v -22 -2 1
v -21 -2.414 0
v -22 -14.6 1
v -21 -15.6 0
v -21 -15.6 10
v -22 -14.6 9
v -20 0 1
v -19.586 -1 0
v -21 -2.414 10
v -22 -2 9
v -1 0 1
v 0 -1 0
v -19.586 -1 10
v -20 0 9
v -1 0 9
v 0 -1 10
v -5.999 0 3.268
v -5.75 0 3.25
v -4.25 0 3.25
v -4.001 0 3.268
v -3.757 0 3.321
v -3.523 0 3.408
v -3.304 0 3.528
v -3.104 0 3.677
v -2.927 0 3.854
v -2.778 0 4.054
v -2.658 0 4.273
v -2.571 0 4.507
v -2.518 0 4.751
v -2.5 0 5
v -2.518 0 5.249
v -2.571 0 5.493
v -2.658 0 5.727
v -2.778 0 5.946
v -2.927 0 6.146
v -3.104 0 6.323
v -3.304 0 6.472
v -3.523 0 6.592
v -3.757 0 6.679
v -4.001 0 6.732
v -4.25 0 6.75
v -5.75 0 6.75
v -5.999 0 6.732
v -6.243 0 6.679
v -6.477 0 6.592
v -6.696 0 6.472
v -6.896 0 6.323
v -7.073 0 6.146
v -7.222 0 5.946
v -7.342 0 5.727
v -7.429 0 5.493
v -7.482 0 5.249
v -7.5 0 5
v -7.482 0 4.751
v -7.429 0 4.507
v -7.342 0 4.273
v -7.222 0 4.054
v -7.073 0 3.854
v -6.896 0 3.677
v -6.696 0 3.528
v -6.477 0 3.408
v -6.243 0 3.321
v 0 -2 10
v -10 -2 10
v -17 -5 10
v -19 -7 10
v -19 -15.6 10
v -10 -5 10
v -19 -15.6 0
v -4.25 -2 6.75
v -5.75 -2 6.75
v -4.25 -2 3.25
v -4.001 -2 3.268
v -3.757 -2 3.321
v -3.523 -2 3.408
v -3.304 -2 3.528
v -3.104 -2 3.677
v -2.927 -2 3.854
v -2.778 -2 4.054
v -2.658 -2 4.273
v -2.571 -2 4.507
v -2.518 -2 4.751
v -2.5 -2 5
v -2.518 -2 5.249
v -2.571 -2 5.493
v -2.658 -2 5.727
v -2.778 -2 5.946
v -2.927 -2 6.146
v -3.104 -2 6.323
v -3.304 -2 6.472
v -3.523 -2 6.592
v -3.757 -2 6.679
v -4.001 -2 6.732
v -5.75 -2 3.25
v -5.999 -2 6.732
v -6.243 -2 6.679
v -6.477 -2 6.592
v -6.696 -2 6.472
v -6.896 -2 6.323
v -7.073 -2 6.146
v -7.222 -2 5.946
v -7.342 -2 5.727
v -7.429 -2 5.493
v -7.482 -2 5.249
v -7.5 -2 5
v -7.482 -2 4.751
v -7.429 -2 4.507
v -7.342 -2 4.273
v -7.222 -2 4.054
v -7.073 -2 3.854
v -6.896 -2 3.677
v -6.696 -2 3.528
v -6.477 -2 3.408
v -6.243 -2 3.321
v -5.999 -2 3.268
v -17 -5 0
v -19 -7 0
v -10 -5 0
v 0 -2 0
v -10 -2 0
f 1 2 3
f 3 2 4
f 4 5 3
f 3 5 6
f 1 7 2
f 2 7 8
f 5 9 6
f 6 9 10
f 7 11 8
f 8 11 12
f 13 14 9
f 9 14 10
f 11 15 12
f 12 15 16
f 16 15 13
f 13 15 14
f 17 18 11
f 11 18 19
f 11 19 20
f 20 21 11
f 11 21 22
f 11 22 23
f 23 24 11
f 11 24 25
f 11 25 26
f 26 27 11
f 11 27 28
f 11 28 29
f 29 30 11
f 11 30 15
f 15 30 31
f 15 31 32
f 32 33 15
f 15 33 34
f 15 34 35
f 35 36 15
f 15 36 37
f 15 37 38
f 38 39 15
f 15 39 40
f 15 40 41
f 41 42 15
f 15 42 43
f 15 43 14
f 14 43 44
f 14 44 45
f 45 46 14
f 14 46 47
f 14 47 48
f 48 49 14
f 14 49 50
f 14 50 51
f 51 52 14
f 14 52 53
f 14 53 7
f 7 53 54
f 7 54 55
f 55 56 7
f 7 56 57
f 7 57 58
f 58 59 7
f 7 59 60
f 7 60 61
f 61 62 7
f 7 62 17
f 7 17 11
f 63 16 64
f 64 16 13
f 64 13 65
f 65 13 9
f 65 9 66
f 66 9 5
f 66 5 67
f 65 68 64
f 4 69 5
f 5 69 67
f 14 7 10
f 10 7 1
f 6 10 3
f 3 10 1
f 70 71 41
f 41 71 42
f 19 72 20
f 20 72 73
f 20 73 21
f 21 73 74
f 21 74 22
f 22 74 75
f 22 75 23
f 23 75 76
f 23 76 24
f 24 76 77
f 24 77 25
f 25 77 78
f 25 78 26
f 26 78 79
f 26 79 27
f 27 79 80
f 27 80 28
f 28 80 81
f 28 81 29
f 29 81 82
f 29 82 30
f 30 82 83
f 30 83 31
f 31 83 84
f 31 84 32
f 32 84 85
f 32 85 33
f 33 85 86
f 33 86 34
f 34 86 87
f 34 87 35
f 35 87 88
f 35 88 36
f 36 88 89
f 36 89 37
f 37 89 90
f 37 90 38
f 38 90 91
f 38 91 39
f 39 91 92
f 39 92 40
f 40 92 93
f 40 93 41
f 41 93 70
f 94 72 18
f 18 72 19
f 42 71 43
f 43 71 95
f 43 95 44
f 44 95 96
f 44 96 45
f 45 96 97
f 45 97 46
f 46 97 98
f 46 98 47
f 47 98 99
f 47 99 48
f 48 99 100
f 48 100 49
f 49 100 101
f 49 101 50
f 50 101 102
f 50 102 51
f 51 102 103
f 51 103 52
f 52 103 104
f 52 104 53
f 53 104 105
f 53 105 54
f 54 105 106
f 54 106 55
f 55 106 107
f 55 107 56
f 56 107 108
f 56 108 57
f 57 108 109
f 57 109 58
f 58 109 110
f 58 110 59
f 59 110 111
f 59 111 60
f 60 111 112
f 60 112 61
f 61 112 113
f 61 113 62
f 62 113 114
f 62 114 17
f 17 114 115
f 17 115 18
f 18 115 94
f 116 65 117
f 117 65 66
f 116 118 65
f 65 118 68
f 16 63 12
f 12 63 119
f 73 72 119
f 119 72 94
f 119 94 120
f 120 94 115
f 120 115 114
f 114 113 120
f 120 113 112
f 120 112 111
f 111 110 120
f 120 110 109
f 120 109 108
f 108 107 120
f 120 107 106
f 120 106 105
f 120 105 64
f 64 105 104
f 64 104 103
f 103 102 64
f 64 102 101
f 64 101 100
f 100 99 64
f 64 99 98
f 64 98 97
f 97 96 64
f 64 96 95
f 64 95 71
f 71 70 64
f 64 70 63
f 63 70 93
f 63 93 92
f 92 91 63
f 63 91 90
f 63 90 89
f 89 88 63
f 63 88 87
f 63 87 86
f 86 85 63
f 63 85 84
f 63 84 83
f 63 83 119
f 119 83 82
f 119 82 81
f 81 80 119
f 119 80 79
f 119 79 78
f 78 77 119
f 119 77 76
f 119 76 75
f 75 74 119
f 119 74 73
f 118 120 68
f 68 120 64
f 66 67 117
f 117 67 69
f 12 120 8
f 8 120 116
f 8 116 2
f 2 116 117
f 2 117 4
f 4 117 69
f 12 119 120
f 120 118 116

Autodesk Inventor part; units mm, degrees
ref_plane "YZ Plane" through (0, 0, 0) normal (1, 0, 0) x (0, 1, 0)
ref_plane "XZ Plane" through (0, 0, 0) normal (0, 1, 0) x (-1, 0, 0)
ref_plane "XY Plane" through (0, 0, 0) normal (0, 0, 1) x (1, 0, 0)
sketch "Sketch1" plane through (0, 0, 0) normal (0, 0, 1) x (1, 0, 0)
  line L0 (0, 0) -> (-22, 0)
  line L1 (-22, 0) -> (-22, -15.6)
  line L2 (-22, -15.6) -> (-19, -15.6)
  line L3 (-19, -15.6) -> (-19, -5)
  line L4 (-19, -5) -> (-10, -5)
  line L5 (-10, -5) -> (-10, -2)
  line L6 (-10, -2) -> (0, -2)
  line L7 (0, -2) -> (0, 0)
  dimension "d0" = 2
  dimension "d1" = 10
  dimension "d2" = 3
  dimension "d3" = 9
  dimension "d4" = 3
  dimension "d5" = 10.6
extrude "Extrusion1" add sketch "Sketch1" along normal blind 10
chamfer "Chamfer1" distance 2 angle 45 1 edges at (-19, -5, 5)
sketch "Sketch2" plane through (-22, 0, 0) normal (0, 1, 0) x (1, 0, 0)
  line L0 (12, 0) -> (12, -10) projected
  line L1 (16.25, -5) -> (17.75, -5) construction
  line L2 (16.25, -6.75) -> (17.75, -6.75)
  line L3 (17.75, -3.25) -> (16.25, -3.25)
  arc A0 (16.25, -3.25) -> (16.25, -6.75) centre (16.25, -5) ccw
  arc A1 (17.75, -6.75) -> (17.75, -3.25) centre (17.75, -5) ccw
  point P0 (22, 0)
  point P1 (17, -5)
  dimension "d11" = 1.75
  dimension "d12" = 1.5
  dimension "d13" = 5
extrude "Extrusion2" cut sketch "Sketch2" against normal through all
chamfer "Chamfer2" distance 2 angle 45 1 edges at (-22, 0, 5)
chamfer "Chamfer3" distance 1 angle 45 8 edges at (-10, 0, 10) (-10, 0, 0) (0, 0, 5) (-21, -1, 10) (-22, -8.8, 10) (-21, -1, 0) (-22, -8.8, 0) (-22, -15.6, 5)
properties part number "_3DPrint"
